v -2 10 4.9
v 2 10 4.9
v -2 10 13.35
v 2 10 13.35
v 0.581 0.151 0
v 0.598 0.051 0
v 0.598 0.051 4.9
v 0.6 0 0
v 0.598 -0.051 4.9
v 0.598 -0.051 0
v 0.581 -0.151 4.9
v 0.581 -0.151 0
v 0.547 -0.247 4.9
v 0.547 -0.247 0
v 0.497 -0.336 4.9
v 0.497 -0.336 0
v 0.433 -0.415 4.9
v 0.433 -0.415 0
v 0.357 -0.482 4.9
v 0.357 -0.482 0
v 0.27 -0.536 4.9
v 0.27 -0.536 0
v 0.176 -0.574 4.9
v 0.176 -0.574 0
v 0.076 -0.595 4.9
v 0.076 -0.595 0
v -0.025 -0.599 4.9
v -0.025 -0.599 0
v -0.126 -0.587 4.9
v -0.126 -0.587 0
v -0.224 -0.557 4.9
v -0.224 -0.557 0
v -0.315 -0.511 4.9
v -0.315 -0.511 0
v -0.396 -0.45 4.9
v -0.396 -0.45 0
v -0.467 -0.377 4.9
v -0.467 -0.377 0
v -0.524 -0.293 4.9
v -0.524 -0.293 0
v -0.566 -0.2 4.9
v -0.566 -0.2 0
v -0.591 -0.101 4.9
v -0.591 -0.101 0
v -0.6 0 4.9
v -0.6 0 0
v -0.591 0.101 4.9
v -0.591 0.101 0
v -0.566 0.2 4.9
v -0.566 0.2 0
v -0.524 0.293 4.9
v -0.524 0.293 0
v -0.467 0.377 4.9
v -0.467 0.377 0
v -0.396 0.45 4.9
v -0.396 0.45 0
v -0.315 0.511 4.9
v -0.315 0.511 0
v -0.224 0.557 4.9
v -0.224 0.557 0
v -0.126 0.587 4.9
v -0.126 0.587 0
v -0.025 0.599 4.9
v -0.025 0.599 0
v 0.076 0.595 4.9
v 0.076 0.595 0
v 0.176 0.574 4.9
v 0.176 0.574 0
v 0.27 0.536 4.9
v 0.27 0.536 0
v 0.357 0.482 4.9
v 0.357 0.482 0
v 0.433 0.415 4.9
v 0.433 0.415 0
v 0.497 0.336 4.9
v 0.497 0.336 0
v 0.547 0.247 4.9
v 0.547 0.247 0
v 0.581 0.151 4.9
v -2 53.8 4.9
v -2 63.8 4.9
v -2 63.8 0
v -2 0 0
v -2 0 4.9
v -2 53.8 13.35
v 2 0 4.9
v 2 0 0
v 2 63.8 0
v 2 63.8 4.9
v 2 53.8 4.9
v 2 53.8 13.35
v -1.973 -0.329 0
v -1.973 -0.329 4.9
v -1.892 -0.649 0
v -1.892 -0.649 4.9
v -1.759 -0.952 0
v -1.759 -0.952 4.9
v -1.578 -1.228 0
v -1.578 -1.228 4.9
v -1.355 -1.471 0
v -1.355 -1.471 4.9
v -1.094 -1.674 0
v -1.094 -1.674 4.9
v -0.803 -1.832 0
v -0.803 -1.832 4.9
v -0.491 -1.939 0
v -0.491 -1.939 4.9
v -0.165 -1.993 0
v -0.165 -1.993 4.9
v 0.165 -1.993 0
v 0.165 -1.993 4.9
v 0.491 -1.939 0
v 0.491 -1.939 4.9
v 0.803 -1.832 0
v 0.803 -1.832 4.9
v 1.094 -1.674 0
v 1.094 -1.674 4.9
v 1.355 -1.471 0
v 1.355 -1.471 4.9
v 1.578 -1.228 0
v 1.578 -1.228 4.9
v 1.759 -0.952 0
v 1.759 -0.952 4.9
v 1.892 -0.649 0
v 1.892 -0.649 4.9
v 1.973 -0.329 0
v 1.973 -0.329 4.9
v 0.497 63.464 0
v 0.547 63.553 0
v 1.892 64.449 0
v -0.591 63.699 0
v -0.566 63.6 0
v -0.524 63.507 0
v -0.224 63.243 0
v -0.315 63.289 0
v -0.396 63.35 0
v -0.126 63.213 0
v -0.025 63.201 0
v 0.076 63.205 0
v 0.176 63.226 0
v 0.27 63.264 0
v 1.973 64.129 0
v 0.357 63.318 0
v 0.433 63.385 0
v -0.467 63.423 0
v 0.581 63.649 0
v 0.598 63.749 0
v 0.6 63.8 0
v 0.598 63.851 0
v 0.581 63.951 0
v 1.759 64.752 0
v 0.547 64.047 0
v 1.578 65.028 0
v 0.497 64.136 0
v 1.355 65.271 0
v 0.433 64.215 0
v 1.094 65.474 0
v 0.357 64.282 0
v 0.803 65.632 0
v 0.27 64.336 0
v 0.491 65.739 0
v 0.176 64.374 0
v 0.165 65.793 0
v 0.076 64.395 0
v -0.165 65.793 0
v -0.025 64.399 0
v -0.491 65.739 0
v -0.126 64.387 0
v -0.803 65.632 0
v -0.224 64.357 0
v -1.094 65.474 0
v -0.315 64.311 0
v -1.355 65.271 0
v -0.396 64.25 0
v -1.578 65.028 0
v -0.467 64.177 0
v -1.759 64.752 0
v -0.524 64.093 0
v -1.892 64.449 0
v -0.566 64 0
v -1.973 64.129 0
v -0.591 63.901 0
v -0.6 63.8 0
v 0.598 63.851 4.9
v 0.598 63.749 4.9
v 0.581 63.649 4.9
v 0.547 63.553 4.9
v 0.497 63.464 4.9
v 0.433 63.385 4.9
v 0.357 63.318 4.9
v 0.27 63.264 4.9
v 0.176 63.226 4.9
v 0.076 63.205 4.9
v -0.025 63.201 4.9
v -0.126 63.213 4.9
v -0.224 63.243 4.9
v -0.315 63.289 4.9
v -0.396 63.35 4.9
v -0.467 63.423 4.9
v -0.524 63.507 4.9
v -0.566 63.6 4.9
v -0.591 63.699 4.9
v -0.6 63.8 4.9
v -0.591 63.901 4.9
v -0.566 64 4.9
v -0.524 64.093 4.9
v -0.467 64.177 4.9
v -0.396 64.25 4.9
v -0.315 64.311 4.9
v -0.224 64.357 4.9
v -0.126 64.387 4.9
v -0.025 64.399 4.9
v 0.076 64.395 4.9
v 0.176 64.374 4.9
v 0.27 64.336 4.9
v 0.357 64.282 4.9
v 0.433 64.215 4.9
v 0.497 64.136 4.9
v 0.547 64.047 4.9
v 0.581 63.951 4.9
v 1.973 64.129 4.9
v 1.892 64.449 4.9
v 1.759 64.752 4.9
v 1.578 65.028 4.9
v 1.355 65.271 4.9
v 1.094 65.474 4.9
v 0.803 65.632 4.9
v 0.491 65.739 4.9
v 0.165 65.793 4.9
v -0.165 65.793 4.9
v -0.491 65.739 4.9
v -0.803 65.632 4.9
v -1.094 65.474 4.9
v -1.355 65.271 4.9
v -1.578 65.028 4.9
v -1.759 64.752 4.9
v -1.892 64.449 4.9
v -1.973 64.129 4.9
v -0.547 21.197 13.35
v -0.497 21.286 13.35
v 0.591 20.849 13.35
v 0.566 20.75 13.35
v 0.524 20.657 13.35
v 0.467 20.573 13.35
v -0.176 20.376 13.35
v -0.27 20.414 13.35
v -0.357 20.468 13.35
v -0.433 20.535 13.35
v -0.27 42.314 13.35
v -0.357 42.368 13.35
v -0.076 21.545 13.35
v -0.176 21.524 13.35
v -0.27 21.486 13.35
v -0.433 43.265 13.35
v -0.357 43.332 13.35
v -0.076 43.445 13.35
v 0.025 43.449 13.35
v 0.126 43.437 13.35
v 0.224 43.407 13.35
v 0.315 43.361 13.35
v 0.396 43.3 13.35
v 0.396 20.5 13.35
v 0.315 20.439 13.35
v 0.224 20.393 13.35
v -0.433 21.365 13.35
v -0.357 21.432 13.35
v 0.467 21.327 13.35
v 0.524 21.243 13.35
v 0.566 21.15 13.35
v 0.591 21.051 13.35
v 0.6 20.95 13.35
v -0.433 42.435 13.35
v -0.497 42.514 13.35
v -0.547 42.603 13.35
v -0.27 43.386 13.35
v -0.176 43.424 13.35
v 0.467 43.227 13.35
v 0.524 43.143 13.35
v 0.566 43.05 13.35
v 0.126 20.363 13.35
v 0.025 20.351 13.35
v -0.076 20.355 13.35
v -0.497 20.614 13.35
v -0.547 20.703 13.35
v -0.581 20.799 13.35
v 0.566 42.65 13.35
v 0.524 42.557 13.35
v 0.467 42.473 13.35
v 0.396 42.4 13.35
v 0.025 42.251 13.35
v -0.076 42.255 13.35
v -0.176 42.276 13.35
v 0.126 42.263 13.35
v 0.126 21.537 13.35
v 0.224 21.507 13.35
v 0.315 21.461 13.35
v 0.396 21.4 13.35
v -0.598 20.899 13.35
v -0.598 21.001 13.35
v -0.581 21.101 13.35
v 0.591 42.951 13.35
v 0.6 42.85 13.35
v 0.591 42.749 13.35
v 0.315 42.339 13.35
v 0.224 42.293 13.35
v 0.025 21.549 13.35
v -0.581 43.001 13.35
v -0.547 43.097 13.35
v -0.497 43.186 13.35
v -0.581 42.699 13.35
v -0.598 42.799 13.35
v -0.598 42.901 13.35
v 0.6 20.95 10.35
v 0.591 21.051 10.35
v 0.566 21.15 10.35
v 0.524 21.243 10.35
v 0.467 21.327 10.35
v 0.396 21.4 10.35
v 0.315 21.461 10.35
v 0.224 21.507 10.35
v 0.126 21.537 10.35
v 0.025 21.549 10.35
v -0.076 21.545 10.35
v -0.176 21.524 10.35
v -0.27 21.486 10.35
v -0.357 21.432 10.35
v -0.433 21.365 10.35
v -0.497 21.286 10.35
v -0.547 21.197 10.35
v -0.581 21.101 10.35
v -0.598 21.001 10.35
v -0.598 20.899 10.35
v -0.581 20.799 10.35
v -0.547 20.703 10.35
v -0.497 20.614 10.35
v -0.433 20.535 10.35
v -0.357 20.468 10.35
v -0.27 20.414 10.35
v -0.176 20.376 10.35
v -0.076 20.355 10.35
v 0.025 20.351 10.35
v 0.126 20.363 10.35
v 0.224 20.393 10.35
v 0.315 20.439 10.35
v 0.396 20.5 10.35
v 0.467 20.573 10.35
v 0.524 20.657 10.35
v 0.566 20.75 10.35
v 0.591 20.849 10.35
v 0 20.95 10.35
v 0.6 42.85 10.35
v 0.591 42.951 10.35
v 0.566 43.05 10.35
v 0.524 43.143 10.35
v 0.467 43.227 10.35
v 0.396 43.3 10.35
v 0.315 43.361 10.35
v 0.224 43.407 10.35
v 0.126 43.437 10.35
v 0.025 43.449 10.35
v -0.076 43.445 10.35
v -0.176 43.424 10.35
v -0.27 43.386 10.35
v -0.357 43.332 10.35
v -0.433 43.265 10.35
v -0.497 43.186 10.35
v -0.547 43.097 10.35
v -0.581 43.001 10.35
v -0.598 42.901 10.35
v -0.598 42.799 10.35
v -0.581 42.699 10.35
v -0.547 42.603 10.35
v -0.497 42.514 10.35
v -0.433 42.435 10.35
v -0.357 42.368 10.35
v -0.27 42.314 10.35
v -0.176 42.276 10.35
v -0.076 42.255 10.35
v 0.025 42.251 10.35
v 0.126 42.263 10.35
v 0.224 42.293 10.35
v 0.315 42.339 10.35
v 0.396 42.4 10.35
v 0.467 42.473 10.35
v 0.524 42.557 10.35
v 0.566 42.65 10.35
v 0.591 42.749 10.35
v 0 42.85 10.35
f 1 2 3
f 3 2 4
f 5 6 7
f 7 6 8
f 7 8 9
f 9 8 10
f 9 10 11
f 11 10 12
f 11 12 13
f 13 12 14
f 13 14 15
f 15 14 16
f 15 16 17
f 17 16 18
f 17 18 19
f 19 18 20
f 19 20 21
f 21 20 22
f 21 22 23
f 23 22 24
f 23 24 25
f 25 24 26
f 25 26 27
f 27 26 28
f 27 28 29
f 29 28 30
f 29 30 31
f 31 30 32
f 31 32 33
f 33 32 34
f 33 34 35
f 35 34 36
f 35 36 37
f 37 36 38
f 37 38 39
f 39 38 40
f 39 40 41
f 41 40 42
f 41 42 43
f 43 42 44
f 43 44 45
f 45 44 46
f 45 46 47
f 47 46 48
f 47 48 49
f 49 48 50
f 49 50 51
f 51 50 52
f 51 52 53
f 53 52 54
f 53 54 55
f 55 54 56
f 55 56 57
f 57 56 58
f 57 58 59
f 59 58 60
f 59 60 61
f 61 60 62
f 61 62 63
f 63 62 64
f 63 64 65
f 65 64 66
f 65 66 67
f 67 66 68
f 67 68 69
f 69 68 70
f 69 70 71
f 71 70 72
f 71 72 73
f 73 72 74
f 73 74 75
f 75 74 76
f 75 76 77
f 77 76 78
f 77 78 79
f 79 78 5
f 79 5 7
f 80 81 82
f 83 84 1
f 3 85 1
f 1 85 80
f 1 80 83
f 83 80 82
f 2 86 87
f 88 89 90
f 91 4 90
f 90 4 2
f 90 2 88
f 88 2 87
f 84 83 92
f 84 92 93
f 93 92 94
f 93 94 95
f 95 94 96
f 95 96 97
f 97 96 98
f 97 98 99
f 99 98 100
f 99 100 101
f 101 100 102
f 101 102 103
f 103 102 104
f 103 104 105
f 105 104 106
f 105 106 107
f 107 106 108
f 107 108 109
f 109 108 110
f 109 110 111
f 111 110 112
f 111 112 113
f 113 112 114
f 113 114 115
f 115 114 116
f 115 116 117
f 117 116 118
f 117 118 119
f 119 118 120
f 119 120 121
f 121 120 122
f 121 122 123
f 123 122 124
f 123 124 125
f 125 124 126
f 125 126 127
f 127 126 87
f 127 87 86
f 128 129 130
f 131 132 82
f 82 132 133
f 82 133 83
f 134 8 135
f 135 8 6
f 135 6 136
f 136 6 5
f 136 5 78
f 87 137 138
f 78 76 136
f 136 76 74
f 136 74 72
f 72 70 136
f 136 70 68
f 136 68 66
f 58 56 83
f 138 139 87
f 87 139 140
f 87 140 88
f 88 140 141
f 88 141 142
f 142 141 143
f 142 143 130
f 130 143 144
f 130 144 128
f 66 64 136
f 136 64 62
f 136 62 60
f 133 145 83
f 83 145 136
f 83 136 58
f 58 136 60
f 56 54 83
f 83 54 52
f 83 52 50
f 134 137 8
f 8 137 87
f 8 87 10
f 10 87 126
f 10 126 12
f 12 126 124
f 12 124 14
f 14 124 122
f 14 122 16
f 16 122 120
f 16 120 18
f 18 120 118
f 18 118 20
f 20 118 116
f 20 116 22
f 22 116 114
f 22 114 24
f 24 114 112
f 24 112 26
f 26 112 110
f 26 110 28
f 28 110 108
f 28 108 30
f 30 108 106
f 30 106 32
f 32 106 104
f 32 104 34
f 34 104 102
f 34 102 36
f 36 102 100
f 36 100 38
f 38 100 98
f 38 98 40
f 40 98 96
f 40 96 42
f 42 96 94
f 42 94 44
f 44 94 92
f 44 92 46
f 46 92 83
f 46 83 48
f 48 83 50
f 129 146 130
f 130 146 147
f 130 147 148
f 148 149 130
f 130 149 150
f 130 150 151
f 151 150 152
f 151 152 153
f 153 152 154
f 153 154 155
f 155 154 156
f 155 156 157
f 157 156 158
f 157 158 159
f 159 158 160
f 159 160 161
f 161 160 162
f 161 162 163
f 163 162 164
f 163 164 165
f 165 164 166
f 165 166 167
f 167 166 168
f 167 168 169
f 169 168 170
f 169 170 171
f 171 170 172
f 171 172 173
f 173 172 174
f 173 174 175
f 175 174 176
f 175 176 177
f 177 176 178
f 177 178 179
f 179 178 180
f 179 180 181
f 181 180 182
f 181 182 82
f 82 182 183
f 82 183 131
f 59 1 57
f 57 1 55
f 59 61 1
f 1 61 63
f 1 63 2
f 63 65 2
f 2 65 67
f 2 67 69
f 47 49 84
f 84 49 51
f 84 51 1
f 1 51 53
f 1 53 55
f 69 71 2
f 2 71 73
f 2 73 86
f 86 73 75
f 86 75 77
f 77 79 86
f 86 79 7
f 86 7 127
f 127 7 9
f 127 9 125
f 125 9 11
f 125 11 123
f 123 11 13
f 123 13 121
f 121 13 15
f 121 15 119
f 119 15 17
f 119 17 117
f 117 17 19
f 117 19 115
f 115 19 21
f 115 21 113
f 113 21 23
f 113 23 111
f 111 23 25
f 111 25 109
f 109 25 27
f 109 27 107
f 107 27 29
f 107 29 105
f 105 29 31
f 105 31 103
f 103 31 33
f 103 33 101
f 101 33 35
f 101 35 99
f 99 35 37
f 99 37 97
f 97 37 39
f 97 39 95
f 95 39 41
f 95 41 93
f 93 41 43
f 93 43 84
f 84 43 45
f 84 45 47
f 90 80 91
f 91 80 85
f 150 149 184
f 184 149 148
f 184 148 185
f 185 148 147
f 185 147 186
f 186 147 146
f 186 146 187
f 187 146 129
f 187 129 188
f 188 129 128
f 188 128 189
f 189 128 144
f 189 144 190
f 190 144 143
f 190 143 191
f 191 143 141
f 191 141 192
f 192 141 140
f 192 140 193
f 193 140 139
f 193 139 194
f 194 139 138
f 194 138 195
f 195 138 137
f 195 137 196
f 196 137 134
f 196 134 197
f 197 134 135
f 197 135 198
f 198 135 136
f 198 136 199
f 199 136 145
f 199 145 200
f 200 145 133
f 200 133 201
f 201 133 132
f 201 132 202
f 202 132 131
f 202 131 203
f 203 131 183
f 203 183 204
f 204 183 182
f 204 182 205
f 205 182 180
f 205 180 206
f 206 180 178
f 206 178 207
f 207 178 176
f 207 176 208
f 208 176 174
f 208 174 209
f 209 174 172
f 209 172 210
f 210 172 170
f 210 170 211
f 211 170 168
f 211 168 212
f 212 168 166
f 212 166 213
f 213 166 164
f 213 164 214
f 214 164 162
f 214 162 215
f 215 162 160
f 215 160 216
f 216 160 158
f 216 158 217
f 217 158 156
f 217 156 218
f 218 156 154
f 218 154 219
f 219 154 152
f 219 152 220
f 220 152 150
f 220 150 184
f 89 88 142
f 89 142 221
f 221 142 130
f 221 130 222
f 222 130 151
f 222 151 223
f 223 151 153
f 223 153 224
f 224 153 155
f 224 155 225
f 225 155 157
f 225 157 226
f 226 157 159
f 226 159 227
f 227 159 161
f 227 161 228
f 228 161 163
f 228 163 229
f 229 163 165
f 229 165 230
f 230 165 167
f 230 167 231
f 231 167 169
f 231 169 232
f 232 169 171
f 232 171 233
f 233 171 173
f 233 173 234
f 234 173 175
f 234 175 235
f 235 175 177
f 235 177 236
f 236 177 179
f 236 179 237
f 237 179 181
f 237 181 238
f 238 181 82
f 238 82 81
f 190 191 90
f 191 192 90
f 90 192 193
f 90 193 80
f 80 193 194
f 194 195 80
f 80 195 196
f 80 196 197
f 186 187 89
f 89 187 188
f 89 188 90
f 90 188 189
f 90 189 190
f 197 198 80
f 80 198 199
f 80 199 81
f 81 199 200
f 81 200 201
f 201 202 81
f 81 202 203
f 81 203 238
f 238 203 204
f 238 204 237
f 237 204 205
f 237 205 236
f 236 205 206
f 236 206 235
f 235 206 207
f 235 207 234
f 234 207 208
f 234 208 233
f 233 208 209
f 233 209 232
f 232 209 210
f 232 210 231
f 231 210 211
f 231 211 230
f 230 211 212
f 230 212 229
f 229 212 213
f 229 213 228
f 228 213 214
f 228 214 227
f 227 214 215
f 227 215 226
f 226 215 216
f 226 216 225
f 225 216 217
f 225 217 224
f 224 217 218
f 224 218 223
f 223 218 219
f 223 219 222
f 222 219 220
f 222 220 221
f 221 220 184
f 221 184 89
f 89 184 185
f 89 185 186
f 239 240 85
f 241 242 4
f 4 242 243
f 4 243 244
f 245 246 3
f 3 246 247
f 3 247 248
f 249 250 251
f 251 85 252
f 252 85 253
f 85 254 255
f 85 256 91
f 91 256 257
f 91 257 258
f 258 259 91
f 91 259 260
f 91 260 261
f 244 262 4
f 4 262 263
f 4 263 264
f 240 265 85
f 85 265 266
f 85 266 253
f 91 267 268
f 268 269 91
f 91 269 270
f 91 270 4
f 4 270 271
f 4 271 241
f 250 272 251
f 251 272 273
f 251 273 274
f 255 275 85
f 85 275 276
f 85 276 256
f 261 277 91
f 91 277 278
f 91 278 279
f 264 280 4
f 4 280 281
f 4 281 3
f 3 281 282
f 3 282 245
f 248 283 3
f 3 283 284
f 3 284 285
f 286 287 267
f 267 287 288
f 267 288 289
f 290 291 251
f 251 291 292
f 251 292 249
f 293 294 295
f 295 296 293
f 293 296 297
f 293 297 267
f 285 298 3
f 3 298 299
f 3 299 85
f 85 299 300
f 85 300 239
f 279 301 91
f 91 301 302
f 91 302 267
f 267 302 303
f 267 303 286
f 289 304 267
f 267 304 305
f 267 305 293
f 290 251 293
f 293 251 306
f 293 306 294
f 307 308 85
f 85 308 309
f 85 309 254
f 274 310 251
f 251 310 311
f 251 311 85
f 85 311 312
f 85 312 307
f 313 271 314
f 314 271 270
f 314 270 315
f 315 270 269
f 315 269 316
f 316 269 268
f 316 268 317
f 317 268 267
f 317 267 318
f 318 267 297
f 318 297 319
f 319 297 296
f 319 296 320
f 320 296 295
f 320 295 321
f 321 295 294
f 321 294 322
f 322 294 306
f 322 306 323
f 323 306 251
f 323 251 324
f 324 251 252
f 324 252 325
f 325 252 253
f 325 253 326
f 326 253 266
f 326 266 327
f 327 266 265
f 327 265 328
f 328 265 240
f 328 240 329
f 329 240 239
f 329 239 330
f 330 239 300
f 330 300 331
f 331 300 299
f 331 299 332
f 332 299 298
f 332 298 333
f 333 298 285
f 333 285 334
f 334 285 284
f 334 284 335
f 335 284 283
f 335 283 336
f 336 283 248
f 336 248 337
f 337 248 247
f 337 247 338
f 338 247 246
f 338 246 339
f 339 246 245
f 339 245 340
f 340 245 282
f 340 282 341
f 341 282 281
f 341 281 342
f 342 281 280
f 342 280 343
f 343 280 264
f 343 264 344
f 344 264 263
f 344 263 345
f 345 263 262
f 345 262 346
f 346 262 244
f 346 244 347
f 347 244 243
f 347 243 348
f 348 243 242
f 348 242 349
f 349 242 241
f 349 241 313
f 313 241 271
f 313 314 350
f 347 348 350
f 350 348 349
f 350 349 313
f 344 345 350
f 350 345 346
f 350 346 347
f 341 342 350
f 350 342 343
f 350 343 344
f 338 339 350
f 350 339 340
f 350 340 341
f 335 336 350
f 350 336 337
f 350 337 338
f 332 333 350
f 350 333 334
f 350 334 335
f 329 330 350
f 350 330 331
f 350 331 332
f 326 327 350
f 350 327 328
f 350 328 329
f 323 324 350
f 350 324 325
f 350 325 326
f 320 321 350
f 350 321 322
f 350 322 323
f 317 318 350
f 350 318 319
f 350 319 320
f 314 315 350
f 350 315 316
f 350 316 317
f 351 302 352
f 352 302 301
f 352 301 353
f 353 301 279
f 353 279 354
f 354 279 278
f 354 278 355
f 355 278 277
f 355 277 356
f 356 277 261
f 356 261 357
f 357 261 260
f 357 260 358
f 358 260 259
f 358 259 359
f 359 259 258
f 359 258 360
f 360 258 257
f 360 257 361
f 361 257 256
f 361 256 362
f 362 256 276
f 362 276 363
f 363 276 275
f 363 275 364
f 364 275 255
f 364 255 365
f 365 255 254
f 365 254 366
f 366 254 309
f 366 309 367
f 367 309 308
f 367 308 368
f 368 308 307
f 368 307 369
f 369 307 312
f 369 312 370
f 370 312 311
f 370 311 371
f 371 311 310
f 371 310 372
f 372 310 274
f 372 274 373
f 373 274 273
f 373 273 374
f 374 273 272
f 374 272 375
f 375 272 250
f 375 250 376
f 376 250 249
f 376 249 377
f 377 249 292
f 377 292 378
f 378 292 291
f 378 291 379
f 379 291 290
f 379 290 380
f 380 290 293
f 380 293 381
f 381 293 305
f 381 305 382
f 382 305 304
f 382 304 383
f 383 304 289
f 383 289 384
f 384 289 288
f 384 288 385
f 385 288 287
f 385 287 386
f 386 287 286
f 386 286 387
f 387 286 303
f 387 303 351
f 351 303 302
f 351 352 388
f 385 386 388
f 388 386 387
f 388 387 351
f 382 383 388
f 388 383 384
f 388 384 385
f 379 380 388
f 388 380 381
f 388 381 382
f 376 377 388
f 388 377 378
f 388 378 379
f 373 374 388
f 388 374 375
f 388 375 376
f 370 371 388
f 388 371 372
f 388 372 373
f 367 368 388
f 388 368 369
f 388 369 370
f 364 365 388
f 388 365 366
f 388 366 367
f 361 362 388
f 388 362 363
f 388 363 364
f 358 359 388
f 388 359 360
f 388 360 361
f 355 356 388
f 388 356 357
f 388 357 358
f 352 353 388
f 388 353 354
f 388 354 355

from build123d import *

# Parameters (mm, degrees)
SKETCH_1_R          = 2
SKETCH_1_R_2        = 0.6
EXTRUDE_1_DEPTH     = 20
SKETCH_4_W          = 4
SKETCH_4_H          = 20
EXTRUDE_2_DEPTH     = 10
SKETCH_3_W          = 4
SKETCH_3_H          = 10.2
CUT_EXTRUDE_1_DEPTH = 24.409399821
EXTRUDE_START       = 10
SKETCH_4_2_W        = 4
SKETCH_4_2_H        = 20
EXTRUDE_3_DEPTH     = 3
SKETCH_1_4_R        = 0.6
CUT_EXTRUDE_3_DEPTH = 24.937418407
SKETCH_5_W          = 4
SKETCH_5_H          = 18.9
EXTRUDE_4_DEPTH     = 20
SKETCH_6_W          = 6.65
SKETCH_6_H          = 67.8
CUT_EXTRUDE_4_DEPTH = 69.888605734
SKETCH_7_R          = 0.6
CUT_EXTRUDE_5_DEPTH = 3


with BuildPart() as part:
    # 草图1 → 凸台-拉伸1 (new body)
    with BuildSketch(Plane.XY):
        Circle(SKETCH_1_R)
        Circle(SKETCH_1_R_2, mode=Mode.SUBTRACT)
    extrude(amount=EXTRUDE_1_DEPTH)

    # 草图4 → 凸台-拉伸2 (add)
    with BuildSketch(Plane(origin=(0, 0, 0), x_dir=(1, 0, 0), z_dir=(0, 1, 0))):
        with Locations((0, -10)):
            Rectangle(SKETCH_4_W, SKETCH_4_H)
    extrude(amount=EXTRUDE_2_DEPTH)

    # 草图3 → 切除-拉伸1 (cut, through all)
    with BuildSketch(Plane(origin=(0, 10, 0), x_dir=(1, 0, 0), z_dir=(0, 1, 0))):
        with Locations((0, -10)):
            Rectangle(SKETCH_3_W, SKETCH_3_H)
    extrude(amount=-CUT_EXTRUDE_1_DEPTH, mode=Mode.SUBTRACT)


with BuildPart() as cut_extrude_1_piece_1:
    # of the separate pieces the step leaves, piece 1, a body of its own (cut_extrude_1_pieces)
    add(part.part.solids().sort_by_distance((-2, 0, 0))[0])



with BuildPart() as cut_extrude_1_piece_2:
    # of the separate pieces the step leaves, piece 2, a body of its own (cut_extrude_1_pieces)
    add(part.part.solids().sort_by_distance((2, 0, 15.1))[0])


with BuildPart() as cut_extrude_1_piece_1_1:
    add(cut_extrude_1_piece_1.part)

    add(cut_extrude_1_piece_2.part)  # 凸台-拉伸3 merges 切除-拉伸1 piece 2
    # 草图4<2> → 凸台-拉伸3 (add)
    with BuildSketch(Plane(origin=(0, 0, 0), x_dir=(1, 0, 0), z_dir=(0, 1, 0)).offset(EXTRUDE_START)):
        with Locations((0, -10)):
            Rectangle(SKETCH_4_2_W, SKETCH_4_2_H)
    extrude(amount=EXTRUDE_3_DEPTH)

    # 草图1<4> → 切除-拉伸3 (cut, through all)
    with BuildSketch(Plane.XY):
        with Locations(Location((0, 0, 0), (0, 0, 180))):
            Circle(SKETCH_1_4_R)
    extrude(amount=CUT_EXTRUDE_3_DEPTH, mode=Mode.SUBTRACT)

    # 草图5 → 凸台-拉伸4 (add)
    with BuildSketch(Plane(origin=(0, 0, 0), x_dir=(-1, 0, 0), z_dir=(0, 0, -1))):
        with Locations((0, 22.45)):
            Rectangle(SKETCH_5_W, SKETCH_5_H)
    extrude(amount=-EXTRUDE_4_DEPTH)

    # 镜向1: 切除-拉伸1 piece 1 across plane


with BuildPart() as cut_extrude_1_piece_1_2:
    add(cut_extrude_1_piece_1_1.part)
    add(cut_extrude_1_piece_1_1.part.mirror(Plane(origin=(2, 31.9, 39.318643845), x_dir=(0, 0, 1), z_dir=(0, 1, 0))))

    # 草图6 → 切除-拉伸4 (cut, through all)
    with BuildSketch(Plane.ZY.offset(2)):
        with Locations((16.675, 31.9)):
            Rectangle(SKETCH_6_W, SKETCH_6_H)
    extrude(amount=-CUT_EXTRUDE_4_DEPTH, mode=Mode.SUBTRACT)

    # 草图7 → 切除-拉伸5 (cut)
    with BuildSketch(Plane.XY.offset(13.35)):
        with Locations((0, 42.85)):
            Circle(SKETCH_7_R)
        with Locations((0, 20.95)):
            Circle(SKETCH_7_R)
    extrude(amount=-CUT_EXTRUDE_5_DEPTH, mode=Mode.SUBTRACT)


solid = cut_extrude_1_piece_1_2.part
